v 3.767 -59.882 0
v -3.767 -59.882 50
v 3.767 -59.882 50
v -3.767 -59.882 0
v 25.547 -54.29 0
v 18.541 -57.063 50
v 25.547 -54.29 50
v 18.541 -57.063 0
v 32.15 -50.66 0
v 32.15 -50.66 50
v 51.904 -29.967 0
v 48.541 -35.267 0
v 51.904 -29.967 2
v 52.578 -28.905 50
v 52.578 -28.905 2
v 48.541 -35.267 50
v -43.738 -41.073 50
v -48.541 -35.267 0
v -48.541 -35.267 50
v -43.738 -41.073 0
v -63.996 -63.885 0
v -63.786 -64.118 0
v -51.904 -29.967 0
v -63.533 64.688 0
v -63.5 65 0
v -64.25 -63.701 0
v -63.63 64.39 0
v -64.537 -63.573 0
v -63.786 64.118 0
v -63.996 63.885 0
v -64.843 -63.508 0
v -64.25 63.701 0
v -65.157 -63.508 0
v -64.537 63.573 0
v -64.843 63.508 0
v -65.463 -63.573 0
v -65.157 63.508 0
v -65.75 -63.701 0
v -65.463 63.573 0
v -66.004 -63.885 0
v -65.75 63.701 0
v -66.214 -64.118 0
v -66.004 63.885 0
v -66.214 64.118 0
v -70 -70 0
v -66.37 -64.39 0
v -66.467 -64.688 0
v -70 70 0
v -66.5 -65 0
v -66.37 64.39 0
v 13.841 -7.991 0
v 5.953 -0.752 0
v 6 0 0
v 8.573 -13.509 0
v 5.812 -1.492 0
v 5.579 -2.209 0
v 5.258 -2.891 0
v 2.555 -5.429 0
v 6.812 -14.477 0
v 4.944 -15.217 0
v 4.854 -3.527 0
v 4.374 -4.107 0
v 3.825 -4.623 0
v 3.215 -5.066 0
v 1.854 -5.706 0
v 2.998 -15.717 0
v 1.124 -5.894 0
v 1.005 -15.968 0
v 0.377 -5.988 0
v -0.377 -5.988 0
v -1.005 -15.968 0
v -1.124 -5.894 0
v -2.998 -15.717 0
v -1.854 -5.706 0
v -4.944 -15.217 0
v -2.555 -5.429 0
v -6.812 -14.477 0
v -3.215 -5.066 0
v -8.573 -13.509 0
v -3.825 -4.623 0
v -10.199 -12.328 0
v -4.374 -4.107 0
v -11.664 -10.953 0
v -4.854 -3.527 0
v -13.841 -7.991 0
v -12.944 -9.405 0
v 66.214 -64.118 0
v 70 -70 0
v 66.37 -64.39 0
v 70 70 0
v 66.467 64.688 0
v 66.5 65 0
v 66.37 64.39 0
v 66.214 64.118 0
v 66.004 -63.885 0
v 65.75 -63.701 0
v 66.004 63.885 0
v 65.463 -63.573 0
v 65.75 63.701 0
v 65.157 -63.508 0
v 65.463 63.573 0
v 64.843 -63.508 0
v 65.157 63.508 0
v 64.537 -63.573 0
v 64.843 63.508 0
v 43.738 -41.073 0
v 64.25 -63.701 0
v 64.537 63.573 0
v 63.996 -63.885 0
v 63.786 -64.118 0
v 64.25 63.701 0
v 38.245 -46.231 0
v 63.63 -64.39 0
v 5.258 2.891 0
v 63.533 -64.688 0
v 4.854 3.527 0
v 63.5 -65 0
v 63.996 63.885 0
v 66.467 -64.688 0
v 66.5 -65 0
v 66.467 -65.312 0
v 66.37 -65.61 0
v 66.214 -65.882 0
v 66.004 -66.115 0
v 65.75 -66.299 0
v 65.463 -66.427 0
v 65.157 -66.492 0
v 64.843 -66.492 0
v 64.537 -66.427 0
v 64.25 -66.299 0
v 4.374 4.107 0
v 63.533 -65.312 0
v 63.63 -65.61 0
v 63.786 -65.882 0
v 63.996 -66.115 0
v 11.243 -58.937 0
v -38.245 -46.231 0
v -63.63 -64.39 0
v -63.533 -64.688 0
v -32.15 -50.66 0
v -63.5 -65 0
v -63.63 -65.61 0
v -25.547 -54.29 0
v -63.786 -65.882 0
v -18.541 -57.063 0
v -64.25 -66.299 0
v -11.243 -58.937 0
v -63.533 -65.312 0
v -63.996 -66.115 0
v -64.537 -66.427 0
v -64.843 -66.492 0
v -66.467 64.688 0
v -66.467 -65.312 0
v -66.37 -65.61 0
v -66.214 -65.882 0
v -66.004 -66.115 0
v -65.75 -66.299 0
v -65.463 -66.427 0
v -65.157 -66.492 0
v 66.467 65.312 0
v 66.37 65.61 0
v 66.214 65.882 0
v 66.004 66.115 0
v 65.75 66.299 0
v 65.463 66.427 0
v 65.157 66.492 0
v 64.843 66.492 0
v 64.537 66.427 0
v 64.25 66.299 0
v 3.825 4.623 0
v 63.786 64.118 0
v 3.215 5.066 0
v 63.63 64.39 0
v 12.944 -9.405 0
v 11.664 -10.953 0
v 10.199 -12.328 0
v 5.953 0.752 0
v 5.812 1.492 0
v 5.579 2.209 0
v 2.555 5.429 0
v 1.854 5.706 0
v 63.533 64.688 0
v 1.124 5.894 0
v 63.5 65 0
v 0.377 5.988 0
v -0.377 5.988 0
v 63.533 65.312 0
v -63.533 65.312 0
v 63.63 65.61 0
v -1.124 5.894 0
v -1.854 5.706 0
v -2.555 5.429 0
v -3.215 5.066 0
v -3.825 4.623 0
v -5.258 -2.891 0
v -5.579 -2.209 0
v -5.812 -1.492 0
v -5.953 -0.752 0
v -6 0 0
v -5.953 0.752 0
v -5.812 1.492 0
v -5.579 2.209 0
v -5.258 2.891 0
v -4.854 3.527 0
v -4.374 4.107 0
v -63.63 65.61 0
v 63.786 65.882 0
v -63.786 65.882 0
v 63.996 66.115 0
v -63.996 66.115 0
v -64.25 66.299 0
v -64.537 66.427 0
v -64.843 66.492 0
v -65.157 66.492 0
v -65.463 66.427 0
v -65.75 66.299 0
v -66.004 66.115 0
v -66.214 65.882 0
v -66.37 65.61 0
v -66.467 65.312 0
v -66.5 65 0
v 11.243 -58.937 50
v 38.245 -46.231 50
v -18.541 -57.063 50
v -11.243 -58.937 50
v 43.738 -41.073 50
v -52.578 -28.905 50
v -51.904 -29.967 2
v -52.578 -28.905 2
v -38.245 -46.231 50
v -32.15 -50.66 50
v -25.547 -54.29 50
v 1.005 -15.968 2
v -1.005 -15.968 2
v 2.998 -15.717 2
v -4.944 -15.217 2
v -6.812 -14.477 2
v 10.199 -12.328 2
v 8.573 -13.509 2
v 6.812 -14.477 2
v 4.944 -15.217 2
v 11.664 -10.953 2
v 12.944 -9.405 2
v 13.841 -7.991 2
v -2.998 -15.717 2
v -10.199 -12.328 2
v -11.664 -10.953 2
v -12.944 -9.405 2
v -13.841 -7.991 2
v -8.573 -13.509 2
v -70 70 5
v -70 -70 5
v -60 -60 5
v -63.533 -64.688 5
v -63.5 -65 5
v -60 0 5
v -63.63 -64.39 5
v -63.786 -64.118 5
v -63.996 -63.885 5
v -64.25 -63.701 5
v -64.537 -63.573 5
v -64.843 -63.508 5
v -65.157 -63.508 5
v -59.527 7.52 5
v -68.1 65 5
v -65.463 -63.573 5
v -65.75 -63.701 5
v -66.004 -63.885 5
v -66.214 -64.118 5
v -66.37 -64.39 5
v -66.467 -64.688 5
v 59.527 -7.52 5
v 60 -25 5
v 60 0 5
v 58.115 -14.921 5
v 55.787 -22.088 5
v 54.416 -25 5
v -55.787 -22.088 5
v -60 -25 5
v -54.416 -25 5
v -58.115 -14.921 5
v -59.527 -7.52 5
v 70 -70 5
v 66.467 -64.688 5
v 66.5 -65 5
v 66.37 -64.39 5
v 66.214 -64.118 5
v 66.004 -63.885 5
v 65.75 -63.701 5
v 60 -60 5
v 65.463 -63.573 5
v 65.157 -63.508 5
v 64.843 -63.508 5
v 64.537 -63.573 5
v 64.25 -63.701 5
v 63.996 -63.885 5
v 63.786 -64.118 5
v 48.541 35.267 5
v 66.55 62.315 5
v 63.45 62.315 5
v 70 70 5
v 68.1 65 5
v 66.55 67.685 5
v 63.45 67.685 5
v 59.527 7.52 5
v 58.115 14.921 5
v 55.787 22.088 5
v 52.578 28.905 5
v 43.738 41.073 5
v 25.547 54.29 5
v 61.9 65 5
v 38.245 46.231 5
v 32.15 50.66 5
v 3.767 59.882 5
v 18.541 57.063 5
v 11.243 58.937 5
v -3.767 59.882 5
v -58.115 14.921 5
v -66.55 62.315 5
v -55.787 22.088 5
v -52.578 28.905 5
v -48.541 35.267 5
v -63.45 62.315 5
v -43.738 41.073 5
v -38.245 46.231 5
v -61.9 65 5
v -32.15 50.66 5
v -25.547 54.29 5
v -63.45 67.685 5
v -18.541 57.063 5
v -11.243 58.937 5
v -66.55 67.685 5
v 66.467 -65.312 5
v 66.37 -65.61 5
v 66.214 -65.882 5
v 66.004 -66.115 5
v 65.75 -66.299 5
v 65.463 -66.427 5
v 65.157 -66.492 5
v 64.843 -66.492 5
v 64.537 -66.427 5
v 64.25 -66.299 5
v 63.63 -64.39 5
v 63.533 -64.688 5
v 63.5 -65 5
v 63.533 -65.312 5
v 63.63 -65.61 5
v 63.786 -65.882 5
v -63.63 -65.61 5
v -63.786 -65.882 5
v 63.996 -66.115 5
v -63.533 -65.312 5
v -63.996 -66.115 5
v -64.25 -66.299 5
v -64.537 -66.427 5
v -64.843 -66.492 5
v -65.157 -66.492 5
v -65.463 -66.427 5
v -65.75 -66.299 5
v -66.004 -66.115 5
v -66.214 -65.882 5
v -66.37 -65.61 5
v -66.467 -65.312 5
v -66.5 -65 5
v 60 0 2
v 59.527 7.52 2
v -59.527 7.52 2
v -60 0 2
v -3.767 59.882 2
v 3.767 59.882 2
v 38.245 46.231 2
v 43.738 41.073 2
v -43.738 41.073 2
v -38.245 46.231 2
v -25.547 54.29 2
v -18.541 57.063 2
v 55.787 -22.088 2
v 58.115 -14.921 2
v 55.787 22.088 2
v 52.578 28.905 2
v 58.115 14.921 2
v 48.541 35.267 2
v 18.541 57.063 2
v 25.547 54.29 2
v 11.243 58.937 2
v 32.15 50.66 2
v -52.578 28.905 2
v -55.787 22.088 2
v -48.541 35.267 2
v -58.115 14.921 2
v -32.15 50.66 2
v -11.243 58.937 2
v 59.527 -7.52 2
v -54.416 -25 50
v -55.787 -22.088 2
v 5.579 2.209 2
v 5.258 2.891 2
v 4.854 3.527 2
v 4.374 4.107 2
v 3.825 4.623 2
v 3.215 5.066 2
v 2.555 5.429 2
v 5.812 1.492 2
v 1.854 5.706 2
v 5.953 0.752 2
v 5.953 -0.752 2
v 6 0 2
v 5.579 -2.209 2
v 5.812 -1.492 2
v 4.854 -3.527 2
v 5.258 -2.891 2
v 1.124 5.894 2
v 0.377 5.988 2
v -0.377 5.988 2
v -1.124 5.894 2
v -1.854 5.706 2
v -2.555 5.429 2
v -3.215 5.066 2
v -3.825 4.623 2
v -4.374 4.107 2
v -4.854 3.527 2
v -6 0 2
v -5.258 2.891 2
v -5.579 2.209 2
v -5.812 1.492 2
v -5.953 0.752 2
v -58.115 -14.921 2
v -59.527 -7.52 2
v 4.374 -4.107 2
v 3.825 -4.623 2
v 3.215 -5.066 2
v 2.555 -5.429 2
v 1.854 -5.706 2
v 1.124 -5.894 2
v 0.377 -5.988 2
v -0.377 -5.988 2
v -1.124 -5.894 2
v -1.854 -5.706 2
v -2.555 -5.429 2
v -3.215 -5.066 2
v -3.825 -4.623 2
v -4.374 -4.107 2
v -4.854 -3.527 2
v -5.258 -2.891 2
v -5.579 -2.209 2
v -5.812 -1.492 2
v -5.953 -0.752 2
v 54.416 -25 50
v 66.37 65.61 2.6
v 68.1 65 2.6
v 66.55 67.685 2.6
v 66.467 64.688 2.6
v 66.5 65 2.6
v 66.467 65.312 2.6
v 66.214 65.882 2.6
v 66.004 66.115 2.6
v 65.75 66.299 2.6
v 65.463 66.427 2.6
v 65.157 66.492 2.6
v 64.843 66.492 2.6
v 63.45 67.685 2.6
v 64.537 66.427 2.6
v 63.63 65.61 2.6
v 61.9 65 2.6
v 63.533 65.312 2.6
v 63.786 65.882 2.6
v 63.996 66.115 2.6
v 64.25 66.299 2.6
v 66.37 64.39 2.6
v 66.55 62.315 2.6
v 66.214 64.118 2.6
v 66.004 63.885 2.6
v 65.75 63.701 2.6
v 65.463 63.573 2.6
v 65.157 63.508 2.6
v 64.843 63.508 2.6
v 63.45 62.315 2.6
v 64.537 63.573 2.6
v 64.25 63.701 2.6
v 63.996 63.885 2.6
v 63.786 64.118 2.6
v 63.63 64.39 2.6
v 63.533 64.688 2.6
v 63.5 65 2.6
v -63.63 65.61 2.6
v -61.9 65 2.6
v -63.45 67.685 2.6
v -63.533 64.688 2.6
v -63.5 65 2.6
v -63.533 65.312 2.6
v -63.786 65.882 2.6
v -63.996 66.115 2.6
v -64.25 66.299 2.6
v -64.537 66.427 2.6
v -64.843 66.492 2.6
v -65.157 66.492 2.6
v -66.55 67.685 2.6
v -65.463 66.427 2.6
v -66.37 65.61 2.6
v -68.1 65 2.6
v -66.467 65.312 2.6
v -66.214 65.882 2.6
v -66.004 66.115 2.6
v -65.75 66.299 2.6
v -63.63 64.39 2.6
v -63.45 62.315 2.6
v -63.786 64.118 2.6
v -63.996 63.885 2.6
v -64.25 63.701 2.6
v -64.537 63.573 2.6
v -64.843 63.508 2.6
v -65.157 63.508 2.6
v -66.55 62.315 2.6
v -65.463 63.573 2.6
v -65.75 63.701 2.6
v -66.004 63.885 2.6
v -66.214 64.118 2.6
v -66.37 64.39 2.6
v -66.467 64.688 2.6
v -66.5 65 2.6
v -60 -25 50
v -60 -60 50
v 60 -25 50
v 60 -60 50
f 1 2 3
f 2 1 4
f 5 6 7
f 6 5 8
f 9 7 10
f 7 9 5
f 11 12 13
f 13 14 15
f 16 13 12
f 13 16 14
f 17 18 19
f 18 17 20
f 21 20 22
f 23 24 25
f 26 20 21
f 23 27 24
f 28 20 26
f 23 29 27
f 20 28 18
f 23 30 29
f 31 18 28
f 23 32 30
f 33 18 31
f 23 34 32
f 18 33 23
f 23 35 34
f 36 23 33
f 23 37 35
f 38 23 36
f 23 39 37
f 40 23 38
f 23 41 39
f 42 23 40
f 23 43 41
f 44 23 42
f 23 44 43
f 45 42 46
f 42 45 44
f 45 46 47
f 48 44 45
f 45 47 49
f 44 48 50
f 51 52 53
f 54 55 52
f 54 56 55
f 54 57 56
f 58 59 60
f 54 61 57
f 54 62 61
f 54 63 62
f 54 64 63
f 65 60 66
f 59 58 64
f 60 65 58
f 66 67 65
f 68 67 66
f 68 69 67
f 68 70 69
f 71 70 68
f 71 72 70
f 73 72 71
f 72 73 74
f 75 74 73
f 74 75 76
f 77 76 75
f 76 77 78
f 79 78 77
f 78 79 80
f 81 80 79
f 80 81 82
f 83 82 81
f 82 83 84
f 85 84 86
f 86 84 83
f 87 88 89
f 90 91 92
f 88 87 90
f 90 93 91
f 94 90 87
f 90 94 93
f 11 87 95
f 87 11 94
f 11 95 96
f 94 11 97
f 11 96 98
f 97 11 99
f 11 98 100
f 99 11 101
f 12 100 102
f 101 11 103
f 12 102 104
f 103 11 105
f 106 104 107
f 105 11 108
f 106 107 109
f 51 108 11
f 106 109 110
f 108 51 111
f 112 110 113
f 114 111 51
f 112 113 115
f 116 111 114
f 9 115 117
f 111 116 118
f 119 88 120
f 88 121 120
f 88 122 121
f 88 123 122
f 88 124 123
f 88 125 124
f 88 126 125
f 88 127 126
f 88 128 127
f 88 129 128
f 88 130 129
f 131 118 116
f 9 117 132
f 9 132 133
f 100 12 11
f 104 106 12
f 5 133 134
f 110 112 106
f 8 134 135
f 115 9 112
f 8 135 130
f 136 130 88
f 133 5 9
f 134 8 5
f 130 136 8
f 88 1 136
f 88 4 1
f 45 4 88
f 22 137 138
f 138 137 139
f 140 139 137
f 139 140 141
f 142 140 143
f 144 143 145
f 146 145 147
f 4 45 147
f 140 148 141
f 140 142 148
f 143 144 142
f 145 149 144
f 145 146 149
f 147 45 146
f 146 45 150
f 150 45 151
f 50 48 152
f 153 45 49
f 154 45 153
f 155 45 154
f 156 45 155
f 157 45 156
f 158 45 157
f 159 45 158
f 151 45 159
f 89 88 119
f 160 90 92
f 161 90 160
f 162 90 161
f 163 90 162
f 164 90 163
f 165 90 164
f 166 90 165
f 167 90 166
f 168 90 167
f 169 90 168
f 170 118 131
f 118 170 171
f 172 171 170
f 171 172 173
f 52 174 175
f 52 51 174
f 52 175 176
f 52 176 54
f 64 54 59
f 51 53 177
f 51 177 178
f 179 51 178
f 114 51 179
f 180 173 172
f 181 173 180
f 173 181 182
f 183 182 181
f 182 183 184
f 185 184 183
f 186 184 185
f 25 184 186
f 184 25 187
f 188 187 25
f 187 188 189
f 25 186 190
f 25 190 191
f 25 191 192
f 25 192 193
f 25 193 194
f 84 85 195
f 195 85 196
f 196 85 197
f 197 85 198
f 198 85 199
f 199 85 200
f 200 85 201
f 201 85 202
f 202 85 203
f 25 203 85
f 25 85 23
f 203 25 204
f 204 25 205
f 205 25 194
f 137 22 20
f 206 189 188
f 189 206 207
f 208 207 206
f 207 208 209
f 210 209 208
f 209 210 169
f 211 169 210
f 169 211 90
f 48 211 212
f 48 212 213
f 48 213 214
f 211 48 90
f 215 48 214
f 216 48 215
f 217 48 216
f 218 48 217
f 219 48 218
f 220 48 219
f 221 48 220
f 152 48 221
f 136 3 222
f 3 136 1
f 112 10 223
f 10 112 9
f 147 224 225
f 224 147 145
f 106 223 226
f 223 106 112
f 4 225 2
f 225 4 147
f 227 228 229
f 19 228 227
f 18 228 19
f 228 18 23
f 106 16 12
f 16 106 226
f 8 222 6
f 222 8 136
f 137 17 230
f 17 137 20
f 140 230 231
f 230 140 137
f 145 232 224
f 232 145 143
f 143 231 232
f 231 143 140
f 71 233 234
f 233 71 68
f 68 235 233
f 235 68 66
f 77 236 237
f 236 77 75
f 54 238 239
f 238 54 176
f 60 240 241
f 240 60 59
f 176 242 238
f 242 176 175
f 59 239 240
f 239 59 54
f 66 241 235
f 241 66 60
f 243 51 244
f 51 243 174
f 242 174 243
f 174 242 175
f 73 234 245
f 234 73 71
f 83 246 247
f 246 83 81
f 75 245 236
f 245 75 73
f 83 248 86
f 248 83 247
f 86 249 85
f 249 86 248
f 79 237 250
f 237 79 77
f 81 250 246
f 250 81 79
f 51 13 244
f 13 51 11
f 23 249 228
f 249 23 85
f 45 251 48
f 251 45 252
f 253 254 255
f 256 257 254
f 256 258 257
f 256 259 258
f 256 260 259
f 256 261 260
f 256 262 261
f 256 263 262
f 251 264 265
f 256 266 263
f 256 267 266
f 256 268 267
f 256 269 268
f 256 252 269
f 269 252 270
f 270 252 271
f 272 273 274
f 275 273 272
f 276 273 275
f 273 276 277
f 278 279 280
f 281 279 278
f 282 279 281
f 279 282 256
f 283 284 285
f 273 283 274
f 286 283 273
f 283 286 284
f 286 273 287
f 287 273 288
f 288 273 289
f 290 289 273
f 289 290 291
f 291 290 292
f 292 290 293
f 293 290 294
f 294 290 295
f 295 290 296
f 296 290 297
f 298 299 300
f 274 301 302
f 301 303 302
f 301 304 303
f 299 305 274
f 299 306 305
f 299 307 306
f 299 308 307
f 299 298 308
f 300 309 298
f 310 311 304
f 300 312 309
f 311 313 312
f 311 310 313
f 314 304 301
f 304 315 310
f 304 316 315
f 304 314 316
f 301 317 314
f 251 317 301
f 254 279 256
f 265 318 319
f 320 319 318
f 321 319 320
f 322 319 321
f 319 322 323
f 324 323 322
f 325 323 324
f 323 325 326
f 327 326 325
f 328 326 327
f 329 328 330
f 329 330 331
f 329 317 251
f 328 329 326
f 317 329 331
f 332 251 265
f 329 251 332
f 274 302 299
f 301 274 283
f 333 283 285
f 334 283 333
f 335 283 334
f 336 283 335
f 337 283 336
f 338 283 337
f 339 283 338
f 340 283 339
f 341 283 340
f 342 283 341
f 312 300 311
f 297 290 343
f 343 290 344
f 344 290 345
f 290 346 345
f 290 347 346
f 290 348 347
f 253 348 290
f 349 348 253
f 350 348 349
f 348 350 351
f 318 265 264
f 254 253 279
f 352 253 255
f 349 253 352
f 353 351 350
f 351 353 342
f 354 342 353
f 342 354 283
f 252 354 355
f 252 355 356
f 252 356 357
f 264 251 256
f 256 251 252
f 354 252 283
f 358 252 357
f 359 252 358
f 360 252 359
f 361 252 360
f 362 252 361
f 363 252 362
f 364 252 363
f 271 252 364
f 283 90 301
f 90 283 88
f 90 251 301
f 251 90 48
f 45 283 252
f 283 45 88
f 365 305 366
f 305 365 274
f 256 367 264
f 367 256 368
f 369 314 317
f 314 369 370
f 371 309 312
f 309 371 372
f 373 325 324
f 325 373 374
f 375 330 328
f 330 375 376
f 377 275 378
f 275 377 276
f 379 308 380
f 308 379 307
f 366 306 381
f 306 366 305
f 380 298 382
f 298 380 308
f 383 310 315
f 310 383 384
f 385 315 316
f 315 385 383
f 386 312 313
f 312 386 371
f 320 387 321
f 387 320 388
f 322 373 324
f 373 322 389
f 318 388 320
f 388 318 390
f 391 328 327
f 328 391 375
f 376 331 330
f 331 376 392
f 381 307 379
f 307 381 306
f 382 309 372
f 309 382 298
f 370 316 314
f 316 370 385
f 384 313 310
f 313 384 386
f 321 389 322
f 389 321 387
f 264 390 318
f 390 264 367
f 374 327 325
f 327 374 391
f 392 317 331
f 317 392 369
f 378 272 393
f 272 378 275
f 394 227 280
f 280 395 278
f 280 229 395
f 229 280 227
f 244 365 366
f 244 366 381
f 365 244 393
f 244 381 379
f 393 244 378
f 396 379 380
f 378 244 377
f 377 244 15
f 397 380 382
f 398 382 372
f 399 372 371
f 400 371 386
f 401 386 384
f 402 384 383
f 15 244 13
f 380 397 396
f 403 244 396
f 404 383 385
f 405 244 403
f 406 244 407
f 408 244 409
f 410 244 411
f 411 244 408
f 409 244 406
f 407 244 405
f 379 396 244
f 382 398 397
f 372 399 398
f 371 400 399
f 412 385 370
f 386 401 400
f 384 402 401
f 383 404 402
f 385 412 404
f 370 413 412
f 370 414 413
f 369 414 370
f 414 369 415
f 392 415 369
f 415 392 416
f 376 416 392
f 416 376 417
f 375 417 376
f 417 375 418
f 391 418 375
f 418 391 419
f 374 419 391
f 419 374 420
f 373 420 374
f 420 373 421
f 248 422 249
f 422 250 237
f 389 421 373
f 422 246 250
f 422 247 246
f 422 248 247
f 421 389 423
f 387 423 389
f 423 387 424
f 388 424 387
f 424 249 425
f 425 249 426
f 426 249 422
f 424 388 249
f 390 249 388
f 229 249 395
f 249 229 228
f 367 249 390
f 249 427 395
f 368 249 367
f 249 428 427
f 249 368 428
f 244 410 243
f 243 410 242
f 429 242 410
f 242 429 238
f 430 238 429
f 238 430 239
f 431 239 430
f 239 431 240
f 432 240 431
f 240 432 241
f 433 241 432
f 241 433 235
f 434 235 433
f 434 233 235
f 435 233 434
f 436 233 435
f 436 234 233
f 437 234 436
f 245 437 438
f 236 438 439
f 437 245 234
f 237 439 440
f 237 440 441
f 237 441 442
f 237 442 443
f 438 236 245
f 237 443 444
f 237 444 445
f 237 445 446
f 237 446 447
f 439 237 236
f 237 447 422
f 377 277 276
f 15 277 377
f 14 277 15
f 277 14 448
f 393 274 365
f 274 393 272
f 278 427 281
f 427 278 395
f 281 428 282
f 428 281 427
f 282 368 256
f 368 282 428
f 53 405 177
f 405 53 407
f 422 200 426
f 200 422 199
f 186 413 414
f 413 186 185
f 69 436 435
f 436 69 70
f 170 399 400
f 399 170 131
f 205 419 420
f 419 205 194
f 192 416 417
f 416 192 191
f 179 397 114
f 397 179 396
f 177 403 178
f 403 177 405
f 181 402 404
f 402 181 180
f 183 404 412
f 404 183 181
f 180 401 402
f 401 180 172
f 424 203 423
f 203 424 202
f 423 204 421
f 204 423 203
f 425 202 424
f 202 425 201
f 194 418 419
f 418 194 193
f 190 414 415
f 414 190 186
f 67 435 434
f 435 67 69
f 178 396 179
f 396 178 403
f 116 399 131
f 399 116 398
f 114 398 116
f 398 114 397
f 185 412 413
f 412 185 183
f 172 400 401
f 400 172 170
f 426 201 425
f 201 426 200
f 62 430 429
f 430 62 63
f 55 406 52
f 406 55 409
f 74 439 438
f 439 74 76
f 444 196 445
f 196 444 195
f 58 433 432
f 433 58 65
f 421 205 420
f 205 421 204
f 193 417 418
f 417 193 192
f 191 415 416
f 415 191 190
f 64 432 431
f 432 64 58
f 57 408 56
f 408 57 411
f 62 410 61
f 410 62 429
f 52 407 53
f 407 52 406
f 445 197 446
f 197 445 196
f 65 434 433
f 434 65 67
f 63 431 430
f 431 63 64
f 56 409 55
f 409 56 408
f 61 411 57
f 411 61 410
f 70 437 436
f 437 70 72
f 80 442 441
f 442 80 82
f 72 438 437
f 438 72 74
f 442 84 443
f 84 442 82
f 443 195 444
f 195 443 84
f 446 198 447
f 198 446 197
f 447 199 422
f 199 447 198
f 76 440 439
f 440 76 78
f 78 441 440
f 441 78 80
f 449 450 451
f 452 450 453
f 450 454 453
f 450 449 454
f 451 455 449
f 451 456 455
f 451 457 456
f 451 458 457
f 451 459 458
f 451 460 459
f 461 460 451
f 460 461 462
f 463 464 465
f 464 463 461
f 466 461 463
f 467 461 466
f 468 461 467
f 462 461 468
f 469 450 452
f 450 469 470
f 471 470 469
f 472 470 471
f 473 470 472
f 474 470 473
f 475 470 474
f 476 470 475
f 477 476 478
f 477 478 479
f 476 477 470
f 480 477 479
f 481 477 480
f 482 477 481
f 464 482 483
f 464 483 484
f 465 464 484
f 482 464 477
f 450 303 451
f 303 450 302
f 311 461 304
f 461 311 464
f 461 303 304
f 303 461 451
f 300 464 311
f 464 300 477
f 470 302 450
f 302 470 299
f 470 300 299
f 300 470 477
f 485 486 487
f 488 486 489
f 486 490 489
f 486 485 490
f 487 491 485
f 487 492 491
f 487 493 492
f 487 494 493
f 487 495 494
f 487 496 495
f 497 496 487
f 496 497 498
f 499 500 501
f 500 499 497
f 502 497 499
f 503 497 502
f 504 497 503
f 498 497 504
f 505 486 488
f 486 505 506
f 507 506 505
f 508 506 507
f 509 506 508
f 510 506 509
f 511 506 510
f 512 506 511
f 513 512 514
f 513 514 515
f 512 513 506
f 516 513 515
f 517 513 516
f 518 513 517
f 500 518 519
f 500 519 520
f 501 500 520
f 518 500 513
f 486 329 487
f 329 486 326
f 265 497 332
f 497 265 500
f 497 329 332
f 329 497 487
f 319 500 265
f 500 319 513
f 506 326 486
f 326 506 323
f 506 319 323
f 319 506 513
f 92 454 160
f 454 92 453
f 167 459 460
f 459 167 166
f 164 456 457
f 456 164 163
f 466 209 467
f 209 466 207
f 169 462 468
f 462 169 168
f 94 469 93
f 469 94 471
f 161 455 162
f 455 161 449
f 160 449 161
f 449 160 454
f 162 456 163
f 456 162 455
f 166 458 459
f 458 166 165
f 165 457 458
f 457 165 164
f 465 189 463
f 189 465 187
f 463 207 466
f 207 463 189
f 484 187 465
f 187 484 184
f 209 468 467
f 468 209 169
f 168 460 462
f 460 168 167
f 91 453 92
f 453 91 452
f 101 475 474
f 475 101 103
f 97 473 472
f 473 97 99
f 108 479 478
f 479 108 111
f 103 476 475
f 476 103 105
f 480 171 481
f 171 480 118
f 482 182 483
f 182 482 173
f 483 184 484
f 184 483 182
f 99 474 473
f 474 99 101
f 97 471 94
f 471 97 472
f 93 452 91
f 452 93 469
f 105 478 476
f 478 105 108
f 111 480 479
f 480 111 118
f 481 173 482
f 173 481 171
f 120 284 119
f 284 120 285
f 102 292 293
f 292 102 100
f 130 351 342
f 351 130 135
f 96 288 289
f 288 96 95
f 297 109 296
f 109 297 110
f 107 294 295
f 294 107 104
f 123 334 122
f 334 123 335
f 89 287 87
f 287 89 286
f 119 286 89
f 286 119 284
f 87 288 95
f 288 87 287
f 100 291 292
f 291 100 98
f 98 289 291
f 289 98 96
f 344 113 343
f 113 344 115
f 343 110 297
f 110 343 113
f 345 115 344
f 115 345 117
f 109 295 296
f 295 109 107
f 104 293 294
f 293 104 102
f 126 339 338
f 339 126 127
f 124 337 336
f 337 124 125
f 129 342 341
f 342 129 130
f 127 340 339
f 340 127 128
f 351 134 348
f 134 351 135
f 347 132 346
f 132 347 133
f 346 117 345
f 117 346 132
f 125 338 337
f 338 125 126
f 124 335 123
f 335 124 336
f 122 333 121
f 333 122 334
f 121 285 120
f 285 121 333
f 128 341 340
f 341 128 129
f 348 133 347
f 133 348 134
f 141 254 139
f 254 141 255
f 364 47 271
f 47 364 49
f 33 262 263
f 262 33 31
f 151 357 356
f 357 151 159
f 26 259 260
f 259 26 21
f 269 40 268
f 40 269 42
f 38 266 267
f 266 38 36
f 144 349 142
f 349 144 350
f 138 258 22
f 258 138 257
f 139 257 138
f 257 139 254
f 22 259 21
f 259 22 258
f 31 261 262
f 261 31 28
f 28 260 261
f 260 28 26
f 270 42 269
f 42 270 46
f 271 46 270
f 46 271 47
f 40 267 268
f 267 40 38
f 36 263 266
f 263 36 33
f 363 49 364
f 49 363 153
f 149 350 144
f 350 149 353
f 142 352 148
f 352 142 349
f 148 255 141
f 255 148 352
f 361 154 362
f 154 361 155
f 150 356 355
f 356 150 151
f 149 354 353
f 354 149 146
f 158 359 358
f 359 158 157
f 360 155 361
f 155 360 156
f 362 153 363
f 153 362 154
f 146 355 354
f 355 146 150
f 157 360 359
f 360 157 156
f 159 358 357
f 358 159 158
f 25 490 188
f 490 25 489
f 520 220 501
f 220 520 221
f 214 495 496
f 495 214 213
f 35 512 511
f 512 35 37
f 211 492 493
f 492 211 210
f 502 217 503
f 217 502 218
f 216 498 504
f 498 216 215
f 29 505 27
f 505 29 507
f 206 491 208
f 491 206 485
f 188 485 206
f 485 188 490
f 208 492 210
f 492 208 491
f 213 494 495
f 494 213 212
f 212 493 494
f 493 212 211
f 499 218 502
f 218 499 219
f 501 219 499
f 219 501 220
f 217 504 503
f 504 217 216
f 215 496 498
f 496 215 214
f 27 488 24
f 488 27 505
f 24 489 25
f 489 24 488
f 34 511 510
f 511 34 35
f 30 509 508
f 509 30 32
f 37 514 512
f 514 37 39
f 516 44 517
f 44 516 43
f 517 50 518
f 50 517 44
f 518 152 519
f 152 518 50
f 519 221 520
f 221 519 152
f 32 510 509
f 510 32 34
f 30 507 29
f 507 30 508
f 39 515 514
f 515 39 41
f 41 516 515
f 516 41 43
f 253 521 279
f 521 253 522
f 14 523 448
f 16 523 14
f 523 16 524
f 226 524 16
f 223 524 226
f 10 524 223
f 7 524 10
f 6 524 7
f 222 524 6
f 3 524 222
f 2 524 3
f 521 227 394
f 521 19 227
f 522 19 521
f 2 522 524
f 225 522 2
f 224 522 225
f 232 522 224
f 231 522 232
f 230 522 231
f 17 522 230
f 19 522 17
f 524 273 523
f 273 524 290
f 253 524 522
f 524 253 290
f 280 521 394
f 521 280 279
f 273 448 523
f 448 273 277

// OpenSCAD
union() {
  difference(){
    // Frame
    translate([-70,-70,0]) cube([140,140,5], false);
    // Auger inset
    translate([0,0,2]) cylinder(3, 60, 60, false, $fn=50);
    
    // Food Opening
    difference(){
      cylinder(5, 60, 60, false, $fn=50);
      cylinder(5, 16, 16, false, $fn=50);
      rotate([0,0,-30]) cube([60,60,5], false);
      rotate([0,0,60]) cube([60,60,5], false);
      rotate([0,0,120]) cube([60,60,5], false);
    }
    
    // Inner Axel
    cylinder(5, 6, 6, false, $fn=50);
    // Screw holes and nut catches
    translate([65, 65, 2.6]) cylinder(2.4, 3.1, 3.1, false, $fn=6);
    translate([-65, 65, 2.6]) cylinder(2.4, 3.1, 3.1, false, $fn=6);
    translate([65, 65, 0]) cylinder(5, 1.5, 1.5, false, $fn=30);
    translate([65, -65, 0]) cylinder(5, 1.5, 1.5, false, $fn=30);
    translate([-65, -65, 0]) cylinder(5, 1.5, 1.5, false, $fn=30);
    translate([-65, 65, 0]) cylinder(5, 1.5, 1.5, false, $fn=30);
  }
  // Lower Track
  difference(){
    translate([-60,-60,0]) cube([120,120,50], false);
    cylinder(100, 60, 60, false, $fn=50);
    translate([-60,-25,5]) cube([120,120,50], false);
  }
  }
